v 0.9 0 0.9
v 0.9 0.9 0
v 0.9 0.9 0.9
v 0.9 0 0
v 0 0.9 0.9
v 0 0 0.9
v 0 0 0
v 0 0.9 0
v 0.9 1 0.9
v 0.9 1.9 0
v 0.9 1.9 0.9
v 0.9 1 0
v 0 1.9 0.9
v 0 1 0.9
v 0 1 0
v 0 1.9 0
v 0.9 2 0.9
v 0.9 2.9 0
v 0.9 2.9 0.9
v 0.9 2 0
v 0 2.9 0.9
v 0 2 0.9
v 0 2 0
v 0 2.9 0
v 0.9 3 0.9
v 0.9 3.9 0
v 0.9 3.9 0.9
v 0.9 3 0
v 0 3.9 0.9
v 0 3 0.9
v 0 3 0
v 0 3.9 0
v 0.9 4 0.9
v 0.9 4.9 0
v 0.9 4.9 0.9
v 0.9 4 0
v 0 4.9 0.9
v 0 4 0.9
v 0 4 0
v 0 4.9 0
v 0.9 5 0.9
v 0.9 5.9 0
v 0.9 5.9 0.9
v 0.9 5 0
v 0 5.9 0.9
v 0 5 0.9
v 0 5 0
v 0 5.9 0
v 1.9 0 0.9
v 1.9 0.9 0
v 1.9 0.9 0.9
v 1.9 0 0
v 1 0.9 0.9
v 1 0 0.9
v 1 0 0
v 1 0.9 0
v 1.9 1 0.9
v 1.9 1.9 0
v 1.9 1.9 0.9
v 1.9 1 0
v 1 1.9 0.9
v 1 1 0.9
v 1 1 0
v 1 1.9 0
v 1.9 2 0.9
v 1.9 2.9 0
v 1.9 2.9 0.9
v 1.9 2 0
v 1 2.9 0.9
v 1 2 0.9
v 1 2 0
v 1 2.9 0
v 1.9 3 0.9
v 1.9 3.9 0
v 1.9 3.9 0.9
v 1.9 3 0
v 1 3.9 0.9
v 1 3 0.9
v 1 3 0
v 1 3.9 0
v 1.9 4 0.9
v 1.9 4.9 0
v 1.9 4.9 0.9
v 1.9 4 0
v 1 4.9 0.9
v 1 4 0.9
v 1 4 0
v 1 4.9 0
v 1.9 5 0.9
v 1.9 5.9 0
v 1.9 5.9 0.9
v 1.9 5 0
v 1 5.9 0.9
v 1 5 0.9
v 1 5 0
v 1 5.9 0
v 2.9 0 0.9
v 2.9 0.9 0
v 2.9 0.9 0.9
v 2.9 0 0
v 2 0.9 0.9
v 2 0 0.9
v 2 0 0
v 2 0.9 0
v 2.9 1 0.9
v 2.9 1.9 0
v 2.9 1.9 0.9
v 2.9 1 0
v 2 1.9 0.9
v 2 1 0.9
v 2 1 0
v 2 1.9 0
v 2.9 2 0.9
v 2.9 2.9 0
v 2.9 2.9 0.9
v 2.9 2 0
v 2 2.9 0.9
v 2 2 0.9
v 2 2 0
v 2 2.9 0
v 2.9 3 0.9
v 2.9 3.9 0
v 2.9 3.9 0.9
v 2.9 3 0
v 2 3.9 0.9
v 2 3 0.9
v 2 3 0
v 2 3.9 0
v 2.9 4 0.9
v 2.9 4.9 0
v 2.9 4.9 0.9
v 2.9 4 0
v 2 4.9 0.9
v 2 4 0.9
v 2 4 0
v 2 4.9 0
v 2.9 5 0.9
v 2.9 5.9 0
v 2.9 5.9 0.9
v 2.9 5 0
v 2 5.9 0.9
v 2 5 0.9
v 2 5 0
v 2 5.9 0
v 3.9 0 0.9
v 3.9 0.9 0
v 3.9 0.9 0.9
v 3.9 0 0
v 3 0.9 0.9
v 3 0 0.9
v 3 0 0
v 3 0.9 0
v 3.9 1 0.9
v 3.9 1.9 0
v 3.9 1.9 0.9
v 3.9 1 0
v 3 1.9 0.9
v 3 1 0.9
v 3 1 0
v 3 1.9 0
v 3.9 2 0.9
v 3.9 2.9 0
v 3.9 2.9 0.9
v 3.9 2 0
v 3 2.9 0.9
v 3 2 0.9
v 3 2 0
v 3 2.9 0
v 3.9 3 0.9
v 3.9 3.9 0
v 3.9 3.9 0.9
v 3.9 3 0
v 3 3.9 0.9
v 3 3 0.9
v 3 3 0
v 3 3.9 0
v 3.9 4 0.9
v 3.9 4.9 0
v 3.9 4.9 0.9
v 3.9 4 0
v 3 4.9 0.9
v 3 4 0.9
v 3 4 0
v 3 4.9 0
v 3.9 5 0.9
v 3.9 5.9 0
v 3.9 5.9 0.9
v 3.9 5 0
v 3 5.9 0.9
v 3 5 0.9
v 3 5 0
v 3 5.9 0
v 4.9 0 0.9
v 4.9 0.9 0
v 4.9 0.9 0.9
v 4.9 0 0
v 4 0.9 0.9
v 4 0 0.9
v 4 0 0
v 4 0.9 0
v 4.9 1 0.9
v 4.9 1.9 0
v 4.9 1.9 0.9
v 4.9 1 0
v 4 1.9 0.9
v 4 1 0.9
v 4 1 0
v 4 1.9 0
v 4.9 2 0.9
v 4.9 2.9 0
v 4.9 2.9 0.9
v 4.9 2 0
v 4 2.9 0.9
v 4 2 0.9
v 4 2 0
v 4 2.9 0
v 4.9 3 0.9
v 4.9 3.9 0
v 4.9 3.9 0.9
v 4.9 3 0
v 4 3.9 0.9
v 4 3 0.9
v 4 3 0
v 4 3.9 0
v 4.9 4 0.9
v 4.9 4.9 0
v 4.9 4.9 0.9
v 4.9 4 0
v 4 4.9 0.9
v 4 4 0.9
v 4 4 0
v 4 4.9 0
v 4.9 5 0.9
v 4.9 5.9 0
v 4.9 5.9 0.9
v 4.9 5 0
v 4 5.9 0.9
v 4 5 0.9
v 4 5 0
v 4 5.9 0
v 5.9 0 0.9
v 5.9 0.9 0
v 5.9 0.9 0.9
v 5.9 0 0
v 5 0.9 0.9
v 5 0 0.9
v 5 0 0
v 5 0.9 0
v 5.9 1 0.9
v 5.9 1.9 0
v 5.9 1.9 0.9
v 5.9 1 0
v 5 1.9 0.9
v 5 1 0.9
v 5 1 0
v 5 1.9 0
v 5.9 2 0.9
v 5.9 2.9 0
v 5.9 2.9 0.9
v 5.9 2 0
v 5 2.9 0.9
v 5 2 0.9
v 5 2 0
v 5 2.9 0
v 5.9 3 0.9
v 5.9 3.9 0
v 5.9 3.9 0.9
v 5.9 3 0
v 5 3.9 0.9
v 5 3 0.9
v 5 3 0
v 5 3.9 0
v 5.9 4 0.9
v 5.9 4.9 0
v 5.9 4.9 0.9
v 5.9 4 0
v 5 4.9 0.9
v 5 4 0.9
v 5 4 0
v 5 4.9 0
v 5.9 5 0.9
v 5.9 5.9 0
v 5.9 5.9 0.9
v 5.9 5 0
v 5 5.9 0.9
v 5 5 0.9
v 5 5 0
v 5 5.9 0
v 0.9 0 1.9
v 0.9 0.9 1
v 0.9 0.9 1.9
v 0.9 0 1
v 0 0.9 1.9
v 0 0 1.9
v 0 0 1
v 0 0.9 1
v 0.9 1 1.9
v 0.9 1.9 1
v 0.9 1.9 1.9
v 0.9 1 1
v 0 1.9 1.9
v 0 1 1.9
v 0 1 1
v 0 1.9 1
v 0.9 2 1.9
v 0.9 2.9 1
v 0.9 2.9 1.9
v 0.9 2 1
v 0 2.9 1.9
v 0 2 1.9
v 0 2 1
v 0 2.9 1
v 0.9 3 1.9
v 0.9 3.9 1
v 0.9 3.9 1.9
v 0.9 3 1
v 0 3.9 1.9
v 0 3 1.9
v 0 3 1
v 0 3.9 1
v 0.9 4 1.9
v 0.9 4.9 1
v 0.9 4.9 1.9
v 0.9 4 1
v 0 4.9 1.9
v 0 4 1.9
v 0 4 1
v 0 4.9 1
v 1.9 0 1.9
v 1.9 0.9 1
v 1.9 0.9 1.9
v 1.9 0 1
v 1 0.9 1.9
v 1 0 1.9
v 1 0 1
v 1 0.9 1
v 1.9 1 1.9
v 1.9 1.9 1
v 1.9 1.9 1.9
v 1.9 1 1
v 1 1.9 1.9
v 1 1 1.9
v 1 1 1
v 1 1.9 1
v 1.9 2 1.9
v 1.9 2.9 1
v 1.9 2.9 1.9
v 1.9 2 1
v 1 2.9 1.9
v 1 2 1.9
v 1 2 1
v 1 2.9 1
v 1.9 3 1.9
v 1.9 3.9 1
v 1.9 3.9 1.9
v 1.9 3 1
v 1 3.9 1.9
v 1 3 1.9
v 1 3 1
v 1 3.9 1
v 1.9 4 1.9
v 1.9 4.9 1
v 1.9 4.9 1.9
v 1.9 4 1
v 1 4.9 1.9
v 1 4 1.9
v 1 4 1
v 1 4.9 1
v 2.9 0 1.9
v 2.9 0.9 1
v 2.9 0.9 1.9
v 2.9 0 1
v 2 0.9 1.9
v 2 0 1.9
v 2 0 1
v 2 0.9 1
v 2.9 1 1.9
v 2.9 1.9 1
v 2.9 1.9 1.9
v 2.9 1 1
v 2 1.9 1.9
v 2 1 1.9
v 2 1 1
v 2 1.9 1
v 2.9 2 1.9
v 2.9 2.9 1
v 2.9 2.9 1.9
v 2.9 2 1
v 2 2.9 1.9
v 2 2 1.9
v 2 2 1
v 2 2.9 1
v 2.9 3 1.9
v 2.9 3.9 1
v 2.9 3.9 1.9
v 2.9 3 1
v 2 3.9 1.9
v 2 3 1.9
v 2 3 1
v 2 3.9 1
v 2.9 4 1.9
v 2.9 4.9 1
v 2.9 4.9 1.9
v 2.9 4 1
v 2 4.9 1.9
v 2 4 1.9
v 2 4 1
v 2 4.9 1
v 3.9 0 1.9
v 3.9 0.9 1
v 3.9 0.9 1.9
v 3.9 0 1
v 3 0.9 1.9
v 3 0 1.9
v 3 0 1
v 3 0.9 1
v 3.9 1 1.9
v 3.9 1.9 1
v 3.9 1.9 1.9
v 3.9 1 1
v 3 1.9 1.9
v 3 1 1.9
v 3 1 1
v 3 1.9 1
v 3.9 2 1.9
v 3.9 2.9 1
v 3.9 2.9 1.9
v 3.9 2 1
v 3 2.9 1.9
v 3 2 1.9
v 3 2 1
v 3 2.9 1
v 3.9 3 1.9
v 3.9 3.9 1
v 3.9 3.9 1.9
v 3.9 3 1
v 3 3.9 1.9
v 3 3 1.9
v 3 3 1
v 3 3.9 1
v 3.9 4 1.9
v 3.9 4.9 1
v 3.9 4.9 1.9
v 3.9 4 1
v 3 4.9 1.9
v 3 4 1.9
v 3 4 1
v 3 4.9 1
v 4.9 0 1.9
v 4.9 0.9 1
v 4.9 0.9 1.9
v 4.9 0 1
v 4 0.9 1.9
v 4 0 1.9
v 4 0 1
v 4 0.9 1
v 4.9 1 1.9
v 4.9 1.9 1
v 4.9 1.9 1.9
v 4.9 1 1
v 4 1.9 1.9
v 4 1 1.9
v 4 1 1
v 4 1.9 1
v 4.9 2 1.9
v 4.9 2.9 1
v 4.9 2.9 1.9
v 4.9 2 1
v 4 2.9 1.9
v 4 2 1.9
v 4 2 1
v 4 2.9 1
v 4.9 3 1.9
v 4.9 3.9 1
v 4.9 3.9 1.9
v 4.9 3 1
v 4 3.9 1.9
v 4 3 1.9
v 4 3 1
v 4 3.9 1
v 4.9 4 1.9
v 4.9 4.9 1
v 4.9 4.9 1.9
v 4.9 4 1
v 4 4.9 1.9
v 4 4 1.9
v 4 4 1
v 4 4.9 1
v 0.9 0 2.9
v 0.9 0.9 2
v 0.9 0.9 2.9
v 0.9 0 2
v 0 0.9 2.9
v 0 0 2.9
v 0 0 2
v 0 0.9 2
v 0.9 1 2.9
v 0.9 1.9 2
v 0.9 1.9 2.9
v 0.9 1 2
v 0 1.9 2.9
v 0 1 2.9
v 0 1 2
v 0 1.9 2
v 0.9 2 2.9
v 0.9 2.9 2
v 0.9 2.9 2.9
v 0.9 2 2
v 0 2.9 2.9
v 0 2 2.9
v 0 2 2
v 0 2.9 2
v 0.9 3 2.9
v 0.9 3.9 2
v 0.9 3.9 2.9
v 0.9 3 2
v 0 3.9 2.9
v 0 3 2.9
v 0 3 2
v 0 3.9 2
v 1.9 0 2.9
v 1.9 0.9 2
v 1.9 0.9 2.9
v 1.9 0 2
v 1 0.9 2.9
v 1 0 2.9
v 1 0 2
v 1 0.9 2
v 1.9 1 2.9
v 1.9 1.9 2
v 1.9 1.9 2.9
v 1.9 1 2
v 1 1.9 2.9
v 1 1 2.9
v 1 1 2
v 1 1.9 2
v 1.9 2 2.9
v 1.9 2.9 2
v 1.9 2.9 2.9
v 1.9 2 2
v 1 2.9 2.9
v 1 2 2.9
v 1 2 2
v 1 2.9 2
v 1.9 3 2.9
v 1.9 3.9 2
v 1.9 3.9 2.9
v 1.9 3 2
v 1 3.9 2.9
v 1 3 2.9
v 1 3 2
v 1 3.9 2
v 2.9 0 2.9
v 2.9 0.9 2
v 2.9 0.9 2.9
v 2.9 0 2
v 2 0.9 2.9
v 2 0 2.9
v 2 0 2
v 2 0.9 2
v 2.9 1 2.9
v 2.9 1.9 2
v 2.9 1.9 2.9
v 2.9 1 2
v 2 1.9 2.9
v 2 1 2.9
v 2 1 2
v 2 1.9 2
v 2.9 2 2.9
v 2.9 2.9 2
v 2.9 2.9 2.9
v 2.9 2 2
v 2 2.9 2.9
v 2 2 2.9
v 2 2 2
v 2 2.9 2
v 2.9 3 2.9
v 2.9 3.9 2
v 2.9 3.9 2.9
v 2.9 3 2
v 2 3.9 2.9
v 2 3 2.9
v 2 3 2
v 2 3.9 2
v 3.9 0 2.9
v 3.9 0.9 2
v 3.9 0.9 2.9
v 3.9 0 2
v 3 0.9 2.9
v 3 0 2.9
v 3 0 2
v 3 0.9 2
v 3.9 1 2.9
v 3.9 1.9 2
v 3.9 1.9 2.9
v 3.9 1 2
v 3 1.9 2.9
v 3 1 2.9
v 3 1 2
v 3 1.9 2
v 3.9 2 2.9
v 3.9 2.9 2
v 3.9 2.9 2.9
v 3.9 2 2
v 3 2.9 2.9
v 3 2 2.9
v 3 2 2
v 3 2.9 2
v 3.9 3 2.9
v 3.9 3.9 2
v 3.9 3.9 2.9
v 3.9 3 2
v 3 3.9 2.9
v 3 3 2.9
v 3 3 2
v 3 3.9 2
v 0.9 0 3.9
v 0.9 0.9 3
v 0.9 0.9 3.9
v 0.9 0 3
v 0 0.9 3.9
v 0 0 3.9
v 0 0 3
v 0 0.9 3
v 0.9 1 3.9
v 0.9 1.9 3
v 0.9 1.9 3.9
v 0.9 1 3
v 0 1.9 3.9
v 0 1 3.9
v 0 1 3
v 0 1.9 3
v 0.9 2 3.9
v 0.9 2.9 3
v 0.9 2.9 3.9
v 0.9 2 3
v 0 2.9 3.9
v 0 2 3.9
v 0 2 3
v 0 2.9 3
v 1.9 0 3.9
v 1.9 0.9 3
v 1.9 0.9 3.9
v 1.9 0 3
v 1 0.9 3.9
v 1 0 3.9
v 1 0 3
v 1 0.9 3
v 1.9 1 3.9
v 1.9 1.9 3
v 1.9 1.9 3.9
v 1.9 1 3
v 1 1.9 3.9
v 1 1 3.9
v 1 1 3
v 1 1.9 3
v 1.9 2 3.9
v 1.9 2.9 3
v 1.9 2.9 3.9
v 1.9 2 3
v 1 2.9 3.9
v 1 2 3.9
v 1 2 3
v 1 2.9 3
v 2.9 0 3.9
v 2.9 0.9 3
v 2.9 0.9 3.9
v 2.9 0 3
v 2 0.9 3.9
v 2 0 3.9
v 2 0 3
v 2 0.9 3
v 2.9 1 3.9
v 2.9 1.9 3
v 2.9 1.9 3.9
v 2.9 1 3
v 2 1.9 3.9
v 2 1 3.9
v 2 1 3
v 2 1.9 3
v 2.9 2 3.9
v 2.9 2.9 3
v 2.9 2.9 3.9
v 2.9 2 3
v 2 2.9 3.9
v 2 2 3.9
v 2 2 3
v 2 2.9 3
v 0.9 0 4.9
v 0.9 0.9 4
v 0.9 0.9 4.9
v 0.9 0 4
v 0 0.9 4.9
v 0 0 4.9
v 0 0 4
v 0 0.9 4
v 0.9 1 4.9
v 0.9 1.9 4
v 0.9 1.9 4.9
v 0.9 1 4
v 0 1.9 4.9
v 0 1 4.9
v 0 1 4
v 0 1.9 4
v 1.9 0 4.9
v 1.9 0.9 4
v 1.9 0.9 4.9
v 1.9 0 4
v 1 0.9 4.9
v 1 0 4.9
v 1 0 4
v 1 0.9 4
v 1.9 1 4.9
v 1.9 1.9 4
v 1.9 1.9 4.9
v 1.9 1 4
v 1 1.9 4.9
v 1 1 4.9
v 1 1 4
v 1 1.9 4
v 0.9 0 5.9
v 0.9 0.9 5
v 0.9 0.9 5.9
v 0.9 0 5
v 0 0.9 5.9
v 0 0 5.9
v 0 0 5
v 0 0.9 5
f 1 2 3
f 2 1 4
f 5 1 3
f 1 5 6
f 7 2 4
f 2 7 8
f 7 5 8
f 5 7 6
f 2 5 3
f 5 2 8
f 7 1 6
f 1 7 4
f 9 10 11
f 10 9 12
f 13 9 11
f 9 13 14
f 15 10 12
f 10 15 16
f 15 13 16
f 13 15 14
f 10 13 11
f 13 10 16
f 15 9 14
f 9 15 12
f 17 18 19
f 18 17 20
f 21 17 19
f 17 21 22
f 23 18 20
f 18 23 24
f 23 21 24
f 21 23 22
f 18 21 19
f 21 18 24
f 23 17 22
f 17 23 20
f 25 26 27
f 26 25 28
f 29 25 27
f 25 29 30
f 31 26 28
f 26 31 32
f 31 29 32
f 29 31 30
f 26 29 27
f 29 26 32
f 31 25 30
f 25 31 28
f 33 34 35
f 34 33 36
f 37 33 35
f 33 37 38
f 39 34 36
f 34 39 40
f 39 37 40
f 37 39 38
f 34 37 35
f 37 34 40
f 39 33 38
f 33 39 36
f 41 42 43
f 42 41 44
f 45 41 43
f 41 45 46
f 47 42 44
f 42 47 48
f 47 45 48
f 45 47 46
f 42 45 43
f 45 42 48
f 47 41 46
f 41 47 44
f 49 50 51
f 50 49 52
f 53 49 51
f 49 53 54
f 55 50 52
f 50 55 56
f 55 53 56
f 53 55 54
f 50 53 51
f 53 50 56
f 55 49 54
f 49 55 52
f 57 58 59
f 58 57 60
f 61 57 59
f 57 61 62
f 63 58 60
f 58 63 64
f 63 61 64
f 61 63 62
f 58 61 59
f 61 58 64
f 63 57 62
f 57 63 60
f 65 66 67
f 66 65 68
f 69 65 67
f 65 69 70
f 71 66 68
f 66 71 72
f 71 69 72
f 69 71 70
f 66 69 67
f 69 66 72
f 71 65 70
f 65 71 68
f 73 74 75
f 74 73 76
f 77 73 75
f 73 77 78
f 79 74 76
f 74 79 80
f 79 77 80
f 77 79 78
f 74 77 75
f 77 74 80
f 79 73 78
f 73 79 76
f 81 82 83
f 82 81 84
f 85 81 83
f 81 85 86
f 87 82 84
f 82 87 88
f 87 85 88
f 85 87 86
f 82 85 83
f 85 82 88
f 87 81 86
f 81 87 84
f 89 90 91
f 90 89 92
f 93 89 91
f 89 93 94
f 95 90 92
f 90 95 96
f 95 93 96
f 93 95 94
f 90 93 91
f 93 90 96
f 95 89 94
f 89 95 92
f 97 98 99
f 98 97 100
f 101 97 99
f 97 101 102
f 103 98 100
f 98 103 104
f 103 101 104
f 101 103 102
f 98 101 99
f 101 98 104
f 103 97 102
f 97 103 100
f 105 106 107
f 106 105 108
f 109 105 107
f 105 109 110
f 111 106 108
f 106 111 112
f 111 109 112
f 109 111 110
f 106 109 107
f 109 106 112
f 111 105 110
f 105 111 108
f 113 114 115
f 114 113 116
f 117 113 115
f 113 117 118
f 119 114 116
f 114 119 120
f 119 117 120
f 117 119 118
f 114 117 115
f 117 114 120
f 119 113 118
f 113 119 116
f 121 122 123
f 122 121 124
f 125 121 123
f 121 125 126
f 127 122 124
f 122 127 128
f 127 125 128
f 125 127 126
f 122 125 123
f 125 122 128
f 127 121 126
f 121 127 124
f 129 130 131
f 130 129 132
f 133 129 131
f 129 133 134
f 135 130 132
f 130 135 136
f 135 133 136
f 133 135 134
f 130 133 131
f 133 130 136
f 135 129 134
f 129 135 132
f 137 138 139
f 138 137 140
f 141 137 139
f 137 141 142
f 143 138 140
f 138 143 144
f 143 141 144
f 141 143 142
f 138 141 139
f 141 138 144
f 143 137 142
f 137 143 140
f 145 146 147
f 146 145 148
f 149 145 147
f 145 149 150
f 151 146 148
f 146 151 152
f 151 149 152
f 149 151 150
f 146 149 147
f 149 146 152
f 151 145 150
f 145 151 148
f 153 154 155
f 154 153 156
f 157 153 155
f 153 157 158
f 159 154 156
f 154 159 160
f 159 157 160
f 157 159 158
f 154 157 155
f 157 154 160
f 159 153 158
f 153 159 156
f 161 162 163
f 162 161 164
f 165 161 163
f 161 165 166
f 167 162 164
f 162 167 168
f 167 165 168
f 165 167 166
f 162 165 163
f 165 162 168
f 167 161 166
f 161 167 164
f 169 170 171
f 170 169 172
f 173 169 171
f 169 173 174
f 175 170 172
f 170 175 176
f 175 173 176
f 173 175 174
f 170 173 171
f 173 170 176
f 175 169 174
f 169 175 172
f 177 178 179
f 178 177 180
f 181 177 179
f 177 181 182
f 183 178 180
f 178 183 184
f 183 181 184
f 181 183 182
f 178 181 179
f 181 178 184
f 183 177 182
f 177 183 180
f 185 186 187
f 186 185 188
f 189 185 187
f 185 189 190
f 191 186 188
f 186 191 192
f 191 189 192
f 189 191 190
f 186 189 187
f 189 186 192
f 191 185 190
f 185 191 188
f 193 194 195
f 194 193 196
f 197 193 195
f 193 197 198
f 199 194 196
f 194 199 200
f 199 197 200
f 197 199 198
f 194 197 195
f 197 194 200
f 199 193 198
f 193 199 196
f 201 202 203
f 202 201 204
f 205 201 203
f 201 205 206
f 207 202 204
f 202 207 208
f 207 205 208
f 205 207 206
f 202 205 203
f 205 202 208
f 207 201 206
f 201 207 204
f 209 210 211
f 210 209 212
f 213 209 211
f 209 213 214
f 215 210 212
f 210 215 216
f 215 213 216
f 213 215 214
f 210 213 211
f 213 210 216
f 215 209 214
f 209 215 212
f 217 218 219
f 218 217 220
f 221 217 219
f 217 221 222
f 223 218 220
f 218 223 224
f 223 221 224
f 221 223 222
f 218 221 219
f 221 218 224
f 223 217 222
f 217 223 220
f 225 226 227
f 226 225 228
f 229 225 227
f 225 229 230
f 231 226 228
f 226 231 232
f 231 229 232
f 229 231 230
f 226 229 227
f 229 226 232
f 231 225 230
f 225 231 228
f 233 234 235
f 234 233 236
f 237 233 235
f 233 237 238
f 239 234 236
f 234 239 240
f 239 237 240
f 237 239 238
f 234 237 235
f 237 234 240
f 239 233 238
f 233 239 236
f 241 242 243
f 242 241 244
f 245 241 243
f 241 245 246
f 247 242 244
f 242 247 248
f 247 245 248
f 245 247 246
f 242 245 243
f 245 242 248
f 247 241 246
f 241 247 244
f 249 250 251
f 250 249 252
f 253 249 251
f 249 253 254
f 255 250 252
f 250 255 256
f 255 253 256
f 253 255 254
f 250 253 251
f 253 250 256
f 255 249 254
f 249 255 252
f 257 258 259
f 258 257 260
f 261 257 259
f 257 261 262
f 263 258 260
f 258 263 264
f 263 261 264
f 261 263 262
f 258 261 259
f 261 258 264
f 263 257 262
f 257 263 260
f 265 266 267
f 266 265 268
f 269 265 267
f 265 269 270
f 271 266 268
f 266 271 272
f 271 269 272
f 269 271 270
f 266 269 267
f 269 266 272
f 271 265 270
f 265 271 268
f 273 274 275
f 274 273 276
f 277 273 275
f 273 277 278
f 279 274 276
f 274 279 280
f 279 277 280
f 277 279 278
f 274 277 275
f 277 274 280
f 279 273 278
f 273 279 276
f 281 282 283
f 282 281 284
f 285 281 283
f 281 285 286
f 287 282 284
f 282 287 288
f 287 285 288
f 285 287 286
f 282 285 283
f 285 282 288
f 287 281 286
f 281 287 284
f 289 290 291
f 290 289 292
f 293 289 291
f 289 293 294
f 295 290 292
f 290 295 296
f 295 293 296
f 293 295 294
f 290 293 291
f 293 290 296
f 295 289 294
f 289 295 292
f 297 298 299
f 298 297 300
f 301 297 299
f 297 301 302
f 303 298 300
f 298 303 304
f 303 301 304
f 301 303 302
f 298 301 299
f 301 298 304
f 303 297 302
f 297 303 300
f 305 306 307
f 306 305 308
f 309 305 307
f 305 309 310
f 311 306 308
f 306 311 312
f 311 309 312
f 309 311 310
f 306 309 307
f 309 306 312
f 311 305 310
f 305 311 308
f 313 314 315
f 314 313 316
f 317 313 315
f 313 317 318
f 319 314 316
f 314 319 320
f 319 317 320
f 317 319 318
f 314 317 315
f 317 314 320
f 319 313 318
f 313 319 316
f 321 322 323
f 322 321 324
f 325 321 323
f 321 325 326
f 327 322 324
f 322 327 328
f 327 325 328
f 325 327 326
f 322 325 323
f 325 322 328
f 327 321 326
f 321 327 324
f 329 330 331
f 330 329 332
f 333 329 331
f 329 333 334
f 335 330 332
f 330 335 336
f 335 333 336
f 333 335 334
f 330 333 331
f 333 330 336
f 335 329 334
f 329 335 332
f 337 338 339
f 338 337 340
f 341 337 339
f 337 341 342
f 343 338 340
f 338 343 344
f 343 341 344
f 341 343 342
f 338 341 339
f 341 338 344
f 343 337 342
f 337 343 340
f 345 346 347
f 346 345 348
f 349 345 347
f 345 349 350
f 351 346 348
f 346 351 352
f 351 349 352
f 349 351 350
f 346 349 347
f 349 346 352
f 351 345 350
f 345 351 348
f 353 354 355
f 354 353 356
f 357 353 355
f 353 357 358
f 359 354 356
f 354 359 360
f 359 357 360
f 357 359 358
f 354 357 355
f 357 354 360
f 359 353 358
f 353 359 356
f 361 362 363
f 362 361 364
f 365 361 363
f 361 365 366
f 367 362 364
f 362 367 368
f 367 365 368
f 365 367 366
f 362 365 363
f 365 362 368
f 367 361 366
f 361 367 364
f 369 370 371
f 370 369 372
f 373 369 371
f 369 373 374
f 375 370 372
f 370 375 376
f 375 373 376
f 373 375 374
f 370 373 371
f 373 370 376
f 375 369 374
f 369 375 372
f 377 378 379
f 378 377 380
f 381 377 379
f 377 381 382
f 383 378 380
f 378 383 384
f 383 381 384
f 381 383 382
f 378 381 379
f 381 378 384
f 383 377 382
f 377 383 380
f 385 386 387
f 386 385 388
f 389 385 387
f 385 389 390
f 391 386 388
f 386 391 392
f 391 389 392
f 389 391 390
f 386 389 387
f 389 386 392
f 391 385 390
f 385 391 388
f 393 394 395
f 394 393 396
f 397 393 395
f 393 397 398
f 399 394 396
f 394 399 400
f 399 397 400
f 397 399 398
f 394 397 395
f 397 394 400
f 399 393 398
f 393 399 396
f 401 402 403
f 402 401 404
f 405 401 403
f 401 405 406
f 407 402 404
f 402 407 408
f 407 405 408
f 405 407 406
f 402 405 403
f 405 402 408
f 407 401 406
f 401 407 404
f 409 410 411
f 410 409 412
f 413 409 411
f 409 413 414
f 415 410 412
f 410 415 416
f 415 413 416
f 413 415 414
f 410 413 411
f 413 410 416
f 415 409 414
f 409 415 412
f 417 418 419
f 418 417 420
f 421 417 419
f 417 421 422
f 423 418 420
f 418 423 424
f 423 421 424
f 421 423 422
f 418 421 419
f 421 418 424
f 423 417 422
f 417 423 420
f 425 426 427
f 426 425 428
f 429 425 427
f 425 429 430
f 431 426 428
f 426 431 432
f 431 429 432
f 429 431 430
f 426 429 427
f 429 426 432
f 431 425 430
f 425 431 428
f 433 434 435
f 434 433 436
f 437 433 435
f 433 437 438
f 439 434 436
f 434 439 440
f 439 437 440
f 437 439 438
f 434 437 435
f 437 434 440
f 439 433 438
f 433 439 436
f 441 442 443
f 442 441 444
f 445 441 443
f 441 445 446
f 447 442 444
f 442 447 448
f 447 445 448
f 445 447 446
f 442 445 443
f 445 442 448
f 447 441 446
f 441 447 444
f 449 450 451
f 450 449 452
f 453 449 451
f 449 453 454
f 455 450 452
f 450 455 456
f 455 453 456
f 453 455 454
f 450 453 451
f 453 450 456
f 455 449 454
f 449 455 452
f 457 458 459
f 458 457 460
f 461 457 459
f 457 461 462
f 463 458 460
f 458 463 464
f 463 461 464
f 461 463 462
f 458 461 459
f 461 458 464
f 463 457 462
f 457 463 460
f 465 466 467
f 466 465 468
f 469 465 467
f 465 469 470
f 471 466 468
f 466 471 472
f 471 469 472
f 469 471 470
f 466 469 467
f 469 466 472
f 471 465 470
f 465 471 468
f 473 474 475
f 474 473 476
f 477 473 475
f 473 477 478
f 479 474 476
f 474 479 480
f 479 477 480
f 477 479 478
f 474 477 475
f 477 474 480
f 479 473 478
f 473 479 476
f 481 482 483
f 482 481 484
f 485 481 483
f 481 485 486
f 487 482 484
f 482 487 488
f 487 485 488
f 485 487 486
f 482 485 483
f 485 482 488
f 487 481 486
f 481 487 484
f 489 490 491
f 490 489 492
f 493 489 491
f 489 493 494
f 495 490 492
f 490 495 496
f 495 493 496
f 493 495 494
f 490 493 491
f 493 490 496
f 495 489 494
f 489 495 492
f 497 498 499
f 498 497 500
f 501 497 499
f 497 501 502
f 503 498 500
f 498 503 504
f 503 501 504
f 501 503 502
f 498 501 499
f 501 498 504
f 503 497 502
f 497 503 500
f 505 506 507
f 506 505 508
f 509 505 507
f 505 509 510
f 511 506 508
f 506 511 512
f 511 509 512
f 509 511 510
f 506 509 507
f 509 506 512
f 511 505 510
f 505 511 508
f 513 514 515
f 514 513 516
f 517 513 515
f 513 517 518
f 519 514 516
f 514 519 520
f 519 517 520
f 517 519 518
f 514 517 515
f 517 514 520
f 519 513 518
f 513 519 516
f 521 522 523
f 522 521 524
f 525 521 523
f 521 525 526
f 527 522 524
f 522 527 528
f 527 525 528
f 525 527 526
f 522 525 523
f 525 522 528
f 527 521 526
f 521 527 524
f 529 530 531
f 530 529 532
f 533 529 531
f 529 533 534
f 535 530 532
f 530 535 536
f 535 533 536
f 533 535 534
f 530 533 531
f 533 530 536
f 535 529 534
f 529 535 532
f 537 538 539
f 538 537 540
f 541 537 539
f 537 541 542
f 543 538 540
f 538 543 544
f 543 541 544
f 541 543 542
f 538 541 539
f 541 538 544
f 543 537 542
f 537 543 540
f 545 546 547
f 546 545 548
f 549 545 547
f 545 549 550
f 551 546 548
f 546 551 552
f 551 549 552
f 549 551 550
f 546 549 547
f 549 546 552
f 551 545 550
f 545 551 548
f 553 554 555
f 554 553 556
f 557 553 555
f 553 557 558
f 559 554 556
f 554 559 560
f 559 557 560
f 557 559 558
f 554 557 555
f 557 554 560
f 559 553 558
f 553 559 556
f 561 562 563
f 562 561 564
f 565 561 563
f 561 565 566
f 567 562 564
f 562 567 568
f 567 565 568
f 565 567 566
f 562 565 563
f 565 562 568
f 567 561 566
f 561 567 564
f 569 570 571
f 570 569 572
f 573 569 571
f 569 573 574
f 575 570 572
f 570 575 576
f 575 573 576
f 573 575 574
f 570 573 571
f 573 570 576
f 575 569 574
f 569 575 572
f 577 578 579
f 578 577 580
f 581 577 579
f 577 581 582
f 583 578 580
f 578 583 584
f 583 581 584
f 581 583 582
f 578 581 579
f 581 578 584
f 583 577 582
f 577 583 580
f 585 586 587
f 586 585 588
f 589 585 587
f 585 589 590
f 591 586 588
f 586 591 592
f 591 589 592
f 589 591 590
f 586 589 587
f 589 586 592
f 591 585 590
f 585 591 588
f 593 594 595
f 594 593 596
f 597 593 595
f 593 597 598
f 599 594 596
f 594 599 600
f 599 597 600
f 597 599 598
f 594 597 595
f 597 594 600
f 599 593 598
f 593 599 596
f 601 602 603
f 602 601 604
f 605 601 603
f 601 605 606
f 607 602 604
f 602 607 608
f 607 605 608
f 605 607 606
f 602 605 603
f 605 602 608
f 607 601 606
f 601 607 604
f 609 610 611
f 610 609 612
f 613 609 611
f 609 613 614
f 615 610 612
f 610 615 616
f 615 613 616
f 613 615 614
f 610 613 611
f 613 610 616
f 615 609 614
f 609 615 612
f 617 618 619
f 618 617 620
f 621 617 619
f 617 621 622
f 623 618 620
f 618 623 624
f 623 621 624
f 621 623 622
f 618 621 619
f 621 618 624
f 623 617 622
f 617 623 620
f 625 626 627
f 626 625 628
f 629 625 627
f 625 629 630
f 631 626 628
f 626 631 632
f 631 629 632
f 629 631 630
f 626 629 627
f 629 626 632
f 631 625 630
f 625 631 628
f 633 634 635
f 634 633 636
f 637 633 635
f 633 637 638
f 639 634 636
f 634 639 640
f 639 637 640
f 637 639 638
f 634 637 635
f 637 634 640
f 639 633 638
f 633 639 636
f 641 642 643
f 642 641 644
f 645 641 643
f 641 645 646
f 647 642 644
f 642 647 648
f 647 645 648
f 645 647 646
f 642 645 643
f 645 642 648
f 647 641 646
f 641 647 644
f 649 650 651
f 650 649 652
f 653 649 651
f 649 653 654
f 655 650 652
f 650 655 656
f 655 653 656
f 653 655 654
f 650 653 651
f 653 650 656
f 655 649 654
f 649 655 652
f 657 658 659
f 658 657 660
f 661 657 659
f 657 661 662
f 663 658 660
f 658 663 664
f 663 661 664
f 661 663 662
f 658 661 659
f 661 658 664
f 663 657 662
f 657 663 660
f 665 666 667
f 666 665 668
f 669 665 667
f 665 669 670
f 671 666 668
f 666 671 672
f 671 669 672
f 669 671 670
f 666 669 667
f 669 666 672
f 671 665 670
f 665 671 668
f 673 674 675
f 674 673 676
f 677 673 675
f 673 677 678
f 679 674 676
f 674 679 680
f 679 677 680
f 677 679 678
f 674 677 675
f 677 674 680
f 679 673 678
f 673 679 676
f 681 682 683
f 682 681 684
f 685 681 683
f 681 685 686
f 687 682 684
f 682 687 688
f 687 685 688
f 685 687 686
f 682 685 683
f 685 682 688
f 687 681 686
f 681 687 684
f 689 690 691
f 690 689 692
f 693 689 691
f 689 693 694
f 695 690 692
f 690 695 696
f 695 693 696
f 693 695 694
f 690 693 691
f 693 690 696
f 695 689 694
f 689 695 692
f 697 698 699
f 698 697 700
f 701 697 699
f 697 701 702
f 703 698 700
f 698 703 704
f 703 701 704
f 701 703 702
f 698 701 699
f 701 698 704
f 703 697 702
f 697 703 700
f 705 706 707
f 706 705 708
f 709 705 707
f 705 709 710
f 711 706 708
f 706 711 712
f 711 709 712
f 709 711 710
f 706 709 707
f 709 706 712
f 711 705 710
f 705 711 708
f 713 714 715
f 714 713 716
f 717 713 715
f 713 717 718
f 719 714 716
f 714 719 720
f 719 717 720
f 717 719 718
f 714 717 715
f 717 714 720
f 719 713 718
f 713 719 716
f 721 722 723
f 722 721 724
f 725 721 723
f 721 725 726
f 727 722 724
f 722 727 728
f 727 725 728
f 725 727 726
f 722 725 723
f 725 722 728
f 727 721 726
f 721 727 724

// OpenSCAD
// base
for (i = [0:1:5])
    for(j = [0:1:5])
        translate([i,j,0])
            cube(0.9);

// secondo livello
for (i = [0:1:4])
    for(j = [0:1:4])
        translate([i,j,1])
            cube(0.9);

// terzo livello
for (i = [0:1:3])
    for(j = [0:1:3])
        translate([i,j,2])
            cube(0.9);

// quarto livello
for (i = [0:1:2])
    for(j = [0:1:2])
        translate([i,j,3])
            cube(0.9);

// quarto livello
for (i = [0:1:1])
    for(j = [0:1:1])
        translate([i,j,4])
            cube(0.9);

// ultimo livello
translate([0,0,5])
    cube(0.9);
